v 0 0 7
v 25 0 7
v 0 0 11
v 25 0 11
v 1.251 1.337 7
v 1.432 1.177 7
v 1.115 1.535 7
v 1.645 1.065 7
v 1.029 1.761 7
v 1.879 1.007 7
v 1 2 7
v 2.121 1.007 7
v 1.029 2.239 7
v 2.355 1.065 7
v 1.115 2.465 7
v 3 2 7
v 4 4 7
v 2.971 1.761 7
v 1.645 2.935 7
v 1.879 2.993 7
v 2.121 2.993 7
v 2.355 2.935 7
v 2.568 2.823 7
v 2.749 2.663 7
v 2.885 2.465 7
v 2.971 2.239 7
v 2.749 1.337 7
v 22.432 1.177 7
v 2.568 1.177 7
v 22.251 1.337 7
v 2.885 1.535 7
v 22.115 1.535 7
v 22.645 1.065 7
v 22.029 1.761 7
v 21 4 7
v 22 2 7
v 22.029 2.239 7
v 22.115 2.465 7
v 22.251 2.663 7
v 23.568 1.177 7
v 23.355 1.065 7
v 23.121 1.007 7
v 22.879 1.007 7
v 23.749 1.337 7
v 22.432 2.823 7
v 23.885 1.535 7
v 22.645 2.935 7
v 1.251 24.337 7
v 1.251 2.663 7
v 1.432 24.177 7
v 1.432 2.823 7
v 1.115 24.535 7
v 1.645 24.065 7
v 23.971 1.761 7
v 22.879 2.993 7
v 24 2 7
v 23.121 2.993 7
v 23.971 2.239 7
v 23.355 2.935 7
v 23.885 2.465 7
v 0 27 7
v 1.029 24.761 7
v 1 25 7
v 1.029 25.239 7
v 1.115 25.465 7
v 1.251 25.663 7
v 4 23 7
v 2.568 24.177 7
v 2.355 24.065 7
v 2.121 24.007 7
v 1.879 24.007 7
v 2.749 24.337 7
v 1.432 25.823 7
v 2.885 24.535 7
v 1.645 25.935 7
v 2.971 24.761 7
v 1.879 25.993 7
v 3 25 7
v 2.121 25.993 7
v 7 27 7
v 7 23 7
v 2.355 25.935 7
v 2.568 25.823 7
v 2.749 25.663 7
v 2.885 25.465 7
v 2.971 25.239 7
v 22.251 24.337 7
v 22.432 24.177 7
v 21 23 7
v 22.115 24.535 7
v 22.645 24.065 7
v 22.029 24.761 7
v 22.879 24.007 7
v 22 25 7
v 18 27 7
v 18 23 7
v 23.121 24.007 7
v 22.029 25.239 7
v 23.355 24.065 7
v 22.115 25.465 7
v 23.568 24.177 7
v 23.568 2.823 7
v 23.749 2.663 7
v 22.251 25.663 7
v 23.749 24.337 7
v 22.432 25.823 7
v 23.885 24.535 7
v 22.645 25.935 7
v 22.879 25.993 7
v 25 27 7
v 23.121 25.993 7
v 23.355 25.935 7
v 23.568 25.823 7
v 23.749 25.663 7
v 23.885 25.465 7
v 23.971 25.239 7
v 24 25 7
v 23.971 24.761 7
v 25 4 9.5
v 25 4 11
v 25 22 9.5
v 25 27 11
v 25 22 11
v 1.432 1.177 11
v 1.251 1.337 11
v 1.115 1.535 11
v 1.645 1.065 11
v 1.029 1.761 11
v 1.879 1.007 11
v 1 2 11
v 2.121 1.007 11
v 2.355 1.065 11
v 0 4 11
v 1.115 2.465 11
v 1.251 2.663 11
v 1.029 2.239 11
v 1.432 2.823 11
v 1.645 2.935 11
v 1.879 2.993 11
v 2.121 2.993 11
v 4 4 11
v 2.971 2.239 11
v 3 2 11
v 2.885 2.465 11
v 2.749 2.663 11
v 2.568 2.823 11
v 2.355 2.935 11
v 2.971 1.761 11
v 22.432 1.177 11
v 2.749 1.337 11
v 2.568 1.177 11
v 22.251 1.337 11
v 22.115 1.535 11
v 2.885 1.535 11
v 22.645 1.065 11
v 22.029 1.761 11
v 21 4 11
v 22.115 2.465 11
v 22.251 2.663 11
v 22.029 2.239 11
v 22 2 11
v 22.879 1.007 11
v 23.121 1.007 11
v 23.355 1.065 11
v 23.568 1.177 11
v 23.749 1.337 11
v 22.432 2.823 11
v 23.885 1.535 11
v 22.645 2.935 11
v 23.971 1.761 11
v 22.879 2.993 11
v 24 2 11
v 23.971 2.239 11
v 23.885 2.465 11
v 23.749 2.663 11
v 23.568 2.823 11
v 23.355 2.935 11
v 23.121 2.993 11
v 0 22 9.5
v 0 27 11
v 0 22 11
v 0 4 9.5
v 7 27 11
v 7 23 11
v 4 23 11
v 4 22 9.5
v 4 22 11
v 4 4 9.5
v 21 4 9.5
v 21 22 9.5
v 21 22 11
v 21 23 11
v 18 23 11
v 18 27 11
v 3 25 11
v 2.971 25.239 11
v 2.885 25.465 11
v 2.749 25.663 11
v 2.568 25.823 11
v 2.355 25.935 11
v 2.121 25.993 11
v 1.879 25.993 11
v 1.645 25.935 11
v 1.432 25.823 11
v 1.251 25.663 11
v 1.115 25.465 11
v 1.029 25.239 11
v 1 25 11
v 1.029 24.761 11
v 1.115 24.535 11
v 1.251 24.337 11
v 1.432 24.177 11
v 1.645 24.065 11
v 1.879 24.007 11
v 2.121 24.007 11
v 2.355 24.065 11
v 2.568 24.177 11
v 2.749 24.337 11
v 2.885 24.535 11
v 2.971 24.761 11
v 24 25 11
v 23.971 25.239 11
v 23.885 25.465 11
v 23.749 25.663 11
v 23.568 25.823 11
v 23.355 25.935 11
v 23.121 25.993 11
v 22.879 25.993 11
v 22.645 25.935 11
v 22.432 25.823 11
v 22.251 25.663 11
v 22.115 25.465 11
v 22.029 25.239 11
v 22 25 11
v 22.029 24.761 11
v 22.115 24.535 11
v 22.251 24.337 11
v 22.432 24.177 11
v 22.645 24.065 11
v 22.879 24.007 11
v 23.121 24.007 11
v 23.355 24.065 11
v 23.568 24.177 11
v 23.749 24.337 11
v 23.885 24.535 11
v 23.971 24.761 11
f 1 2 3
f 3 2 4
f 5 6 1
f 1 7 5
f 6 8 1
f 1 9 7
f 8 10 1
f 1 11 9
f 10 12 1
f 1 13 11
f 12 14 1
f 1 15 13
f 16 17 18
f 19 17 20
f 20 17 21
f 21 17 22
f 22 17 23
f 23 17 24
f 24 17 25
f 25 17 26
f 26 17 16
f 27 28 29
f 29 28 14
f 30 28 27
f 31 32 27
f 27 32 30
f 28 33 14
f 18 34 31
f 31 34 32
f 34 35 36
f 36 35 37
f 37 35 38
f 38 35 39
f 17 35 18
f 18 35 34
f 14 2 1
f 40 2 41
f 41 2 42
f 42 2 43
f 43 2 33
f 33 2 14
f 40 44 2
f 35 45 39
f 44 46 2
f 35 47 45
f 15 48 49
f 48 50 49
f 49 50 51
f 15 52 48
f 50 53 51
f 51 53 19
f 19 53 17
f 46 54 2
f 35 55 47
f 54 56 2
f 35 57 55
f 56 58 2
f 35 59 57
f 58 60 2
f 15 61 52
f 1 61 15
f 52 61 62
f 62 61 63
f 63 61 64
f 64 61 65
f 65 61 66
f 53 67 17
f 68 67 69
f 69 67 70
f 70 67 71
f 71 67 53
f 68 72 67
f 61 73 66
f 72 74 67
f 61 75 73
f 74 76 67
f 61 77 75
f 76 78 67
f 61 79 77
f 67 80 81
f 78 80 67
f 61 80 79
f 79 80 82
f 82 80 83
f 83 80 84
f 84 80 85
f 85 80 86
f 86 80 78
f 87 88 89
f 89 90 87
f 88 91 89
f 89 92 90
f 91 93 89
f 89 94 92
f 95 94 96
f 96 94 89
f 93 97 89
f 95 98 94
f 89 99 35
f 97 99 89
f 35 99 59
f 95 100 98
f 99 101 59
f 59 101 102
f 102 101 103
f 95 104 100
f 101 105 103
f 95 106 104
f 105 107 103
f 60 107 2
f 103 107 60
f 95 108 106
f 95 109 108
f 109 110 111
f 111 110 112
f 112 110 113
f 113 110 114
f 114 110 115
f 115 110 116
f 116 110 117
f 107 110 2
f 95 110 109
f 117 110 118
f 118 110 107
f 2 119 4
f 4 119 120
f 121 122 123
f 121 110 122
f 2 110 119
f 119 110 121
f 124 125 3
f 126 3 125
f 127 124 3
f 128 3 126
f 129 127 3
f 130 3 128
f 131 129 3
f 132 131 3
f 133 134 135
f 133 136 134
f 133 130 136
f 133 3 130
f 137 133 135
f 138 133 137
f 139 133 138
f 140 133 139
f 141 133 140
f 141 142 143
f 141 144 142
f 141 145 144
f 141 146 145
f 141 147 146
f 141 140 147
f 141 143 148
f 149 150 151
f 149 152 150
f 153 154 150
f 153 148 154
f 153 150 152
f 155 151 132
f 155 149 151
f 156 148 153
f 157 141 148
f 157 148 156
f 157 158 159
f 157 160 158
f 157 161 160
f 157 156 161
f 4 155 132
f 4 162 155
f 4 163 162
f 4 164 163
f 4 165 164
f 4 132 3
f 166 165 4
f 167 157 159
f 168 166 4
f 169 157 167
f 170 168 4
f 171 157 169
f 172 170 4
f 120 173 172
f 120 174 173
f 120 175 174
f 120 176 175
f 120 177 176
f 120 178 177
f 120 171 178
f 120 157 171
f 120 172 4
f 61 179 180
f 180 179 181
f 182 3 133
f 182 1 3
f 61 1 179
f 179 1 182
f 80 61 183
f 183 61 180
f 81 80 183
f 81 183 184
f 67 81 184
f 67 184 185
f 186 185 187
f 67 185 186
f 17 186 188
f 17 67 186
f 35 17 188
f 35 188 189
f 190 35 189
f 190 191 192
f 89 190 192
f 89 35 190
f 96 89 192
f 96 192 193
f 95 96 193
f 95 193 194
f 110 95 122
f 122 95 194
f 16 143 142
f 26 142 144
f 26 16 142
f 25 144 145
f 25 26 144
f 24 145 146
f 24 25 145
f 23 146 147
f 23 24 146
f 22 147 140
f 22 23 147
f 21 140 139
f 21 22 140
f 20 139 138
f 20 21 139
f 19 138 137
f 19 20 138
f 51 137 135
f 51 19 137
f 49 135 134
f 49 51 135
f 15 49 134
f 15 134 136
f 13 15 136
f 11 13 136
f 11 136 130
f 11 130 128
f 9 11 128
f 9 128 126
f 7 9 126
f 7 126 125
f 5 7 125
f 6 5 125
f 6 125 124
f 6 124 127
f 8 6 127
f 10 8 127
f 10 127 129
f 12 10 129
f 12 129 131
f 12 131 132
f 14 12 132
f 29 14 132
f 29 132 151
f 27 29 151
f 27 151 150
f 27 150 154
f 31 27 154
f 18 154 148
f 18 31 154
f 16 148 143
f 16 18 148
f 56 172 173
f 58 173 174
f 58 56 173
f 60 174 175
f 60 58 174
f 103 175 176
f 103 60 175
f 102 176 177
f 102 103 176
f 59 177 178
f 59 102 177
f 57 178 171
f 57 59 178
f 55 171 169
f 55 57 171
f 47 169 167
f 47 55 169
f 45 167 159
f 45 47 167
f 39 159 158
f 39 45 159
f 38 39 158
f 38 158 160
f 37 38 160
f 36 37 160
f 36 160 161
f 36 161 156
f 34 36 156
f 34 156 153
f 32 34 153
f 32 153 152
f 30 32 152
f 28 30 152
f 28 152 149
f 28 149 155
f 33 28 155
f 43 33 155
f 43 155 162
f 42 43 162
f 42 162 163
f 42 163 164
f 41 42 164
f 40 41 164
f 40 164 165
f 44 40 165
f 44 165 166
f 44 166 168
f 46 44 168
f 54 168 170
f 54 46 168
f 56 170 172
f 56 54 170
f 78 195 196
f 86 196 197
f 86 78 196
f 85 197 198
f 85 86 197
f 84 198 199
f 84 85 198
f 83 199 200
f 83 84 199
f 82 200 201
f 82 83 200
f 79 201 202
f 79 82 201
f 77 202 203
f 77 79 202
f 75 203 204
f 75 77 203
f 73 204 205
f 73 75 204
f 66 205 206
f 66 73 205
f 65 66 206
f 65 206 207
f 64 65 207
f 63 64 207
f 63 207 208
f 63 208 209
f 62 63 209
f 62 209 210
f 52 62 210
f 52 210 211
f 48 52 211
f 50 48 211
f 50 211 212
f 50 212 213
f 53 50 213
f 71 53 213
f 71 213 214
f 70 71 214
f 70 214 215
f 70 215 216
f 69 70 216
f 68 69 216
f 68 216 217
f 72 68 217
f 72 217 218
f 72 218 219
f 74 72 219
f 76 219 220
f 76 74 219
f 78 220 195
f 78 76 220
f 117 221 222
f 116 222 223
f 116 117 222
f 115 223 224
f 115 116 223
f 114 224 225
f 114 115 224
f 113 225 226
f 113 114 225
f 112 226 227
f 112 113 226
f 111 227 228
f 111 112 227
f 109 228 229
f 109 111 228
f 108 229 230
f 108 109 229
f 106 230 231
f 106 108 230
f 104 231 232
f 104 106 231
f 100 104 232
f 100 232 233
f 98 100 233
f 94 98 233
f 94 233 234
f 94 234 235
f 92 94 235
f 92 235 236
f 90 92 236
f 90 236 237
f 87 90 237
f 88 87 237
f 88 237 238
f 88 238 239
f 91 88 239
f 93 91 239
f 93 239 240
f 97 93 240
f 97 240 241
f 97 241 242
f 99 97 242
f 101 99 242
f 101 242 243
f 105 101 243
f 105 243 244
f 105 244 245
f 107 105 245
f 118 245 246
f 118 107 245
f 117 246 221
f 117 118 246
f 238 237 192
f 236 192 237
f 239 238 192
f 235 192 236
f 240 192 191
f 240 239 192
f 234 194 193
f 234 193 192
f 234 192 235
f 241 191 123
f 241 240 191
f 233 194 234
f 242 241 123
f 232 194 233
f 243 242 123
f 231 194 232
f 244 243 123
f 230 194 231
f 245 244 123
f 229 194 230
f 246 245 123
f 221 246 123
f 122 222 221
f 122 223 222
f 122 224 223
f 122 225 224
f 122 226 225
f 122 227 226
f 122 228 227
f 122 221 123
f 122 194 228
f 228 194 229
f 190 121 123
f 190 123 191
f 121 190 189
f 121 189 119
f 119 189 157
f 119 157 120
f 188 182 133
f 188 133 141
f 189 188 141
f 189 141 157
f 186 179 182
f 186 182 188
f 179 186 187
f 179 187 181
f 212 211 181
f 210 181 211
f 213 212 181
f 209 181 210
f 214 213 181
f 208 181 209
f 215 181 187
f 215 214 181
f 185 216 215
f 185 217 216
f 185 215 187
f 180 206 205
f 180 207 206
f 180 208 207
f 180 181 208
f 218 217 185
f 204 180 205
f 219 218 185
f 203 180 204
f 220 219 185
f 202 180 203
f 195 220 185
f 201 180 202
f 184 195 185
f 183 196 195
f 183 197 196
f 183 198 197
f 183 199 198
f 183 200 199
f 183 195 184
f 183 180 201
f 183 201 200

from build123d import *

# Parameters (mm, degrees)
RECTANGLE_W      = 25
RECTANGLE_H      = 27
EXTRUDE008_DEPTH = 7
RECTANGLE003_W   = 26
RECTANGLE003_H   = 18
EXTRUDE007_DEPTH = 1.5
RECTANGLE002_W   = 11
RECTANGLE002_H   = 5
EXTRUDE006_DEPTH = 11
CIRCLE002_R      = 1
EXTRUDE004_DEPTH = 11
CIRCLE003_R      = 1
EXTRUDE005_DEPTH = 11
CIRCLE001_R      = 1
EXTRUDE003_DEPTH = 11
CIRCLE_R         = 1
EXTRUDE002_DEPTH = 11
RECTANGLE001_W   = 17
RECTANGLE001_H   = 19
EXTRUDE001_DEPTH = 11
EXTRUDE_DEPTH    = 11


with BuildPart() as smaller:
    # Rectangle → Extrude008 (new body)
    with BuildSketch(Plane.XY):
        with Locations((12.5, 13.5)):
            Rectangle(RECTANGLE_W, RECTANGLE_H)
    extrude(amount=EXTRUDE008_DEPTH)


with BuildPart() as extrude007:
    # Rectangle003 → Extrude007 (new body)
    with BuildSketch(Plane(origin=(0, 4, 9.5), x_dir=(1, 0, 0), z_dir=(0, 0, 1))):
        with Locations((13, 9)):
            Rectangle(RECTANGLE003_W, RECTANGLE003_H)
    extrude(amount=EXTRUDE007_DEPTH)


with BuildPart() as extrude006:
    # Rectangle002 → Extrude006 (new body)
    with BuildSketch(Plane(origin=(7, 22, 0), x_dir=(1, 0, 0), z_dir=(0, 0, 1))):
        with Locations((5.5, 2.5)):
            Rectangle(RECTANGLE002_W, RECTANGLE002_H)
    extrude(amount=EXTRUDE006_DEPTH)


with BuildPart() as extrude_bl:
    # Circle002 → Extrude004 (new body)
    with BuildSketch(Plane(origin=(2, 2, 0), x_dir=(1, 0, 0), z_dir=(0, 0, 1))):
        Circle(CIRCLE002_R)
    extrude(amount=EXTRUDE004_DEPTH)


with BuildPart() as extrude_br:
    # Circle003 → Extrude005 (new body)
    with BuildSketch(Plane(origin=(23, 2, 0), x_dir=(1, 0, 0), z_dir=(0, 0, 1))):
        Circle(CIRCLE003_R)
    extrude(amount=EXTRUDE005_DEPTH)


with BuildPart() as extrude_tr:
    # Circle001 → Extrude003 (new body)
    with BuildSketch(Plane(origin=(23, 25, 0), x_dir=(1, 0, 0), z_dir=(0, 0, 1))):
        Circle(CIRCLE001_R)
    extrude(amount=EXTRUDE003_DEPTH)


with BuildPart() as extrude_tl:
    # Circle → Extrude002 (new body)
    with BuildSketch(Plane(origin=(2, 25, 0), x_dir=(1, 0, 0), z_dir=(0, 0, 1))):
        Circle(CIRCLE_R)
    extrude(amount=EXTRUDE002_DEPTH)


with BuildPart() as extrude_inner:
    # Rectangle001 → Extrude001 (new body)
    with BuildSketch(Plane(origin=(4, 4, 0), x_dir=(1, 0, 0), z_dir=(0, 0, 1))):
        with Locations((8.5, 9.5)):
            Rectangle(RECTANGLE001_W, RECTANGLE001_H)
    extrude(amount=EXTRUDE001_DEPTH)


with BuildPart() as cut007:
    # Rectangle → Extrude (new body)
    with BuildSketch(Plane.XY):
        with Locations((12.5, 13.5)):
            Rectangle(RECTANGLE_W, RECTANGLE_H)
    extrude(amount=EXTRUDE_DEPTH)

    # Cut: cut Extrude inner
    add(extrude_inner.part, mode=Mode.SUBTRACT)

    # Cut001: cut Extrude TL
    add(extrude_tl.part, mode=Mode.SUBTRACT)

    # Cut002: cut Extrude TR
    add(extrude_tr.part, mode=Mode.SUBTRACT)

    # Cut003: cut Extrude BR
    add(extrude_br.part, mode=Mode.SUBTRACT)

    # Cut004: cut Extrude BL
    add(extrude_bl.part, mode=Mode.SUBTRACT)

    # Cut005: cut Extrude006
    add(extrude006.part, mode=Mode.SUBTRACT)

    # Cut006: cut Extrude007
    add(extrude007.part, mode=Mode.SUBTRACT)

    # Cut007: cut smaller
    add(smaller.part, mode=Mode.SUBTRACT)


solid = cut007.part
